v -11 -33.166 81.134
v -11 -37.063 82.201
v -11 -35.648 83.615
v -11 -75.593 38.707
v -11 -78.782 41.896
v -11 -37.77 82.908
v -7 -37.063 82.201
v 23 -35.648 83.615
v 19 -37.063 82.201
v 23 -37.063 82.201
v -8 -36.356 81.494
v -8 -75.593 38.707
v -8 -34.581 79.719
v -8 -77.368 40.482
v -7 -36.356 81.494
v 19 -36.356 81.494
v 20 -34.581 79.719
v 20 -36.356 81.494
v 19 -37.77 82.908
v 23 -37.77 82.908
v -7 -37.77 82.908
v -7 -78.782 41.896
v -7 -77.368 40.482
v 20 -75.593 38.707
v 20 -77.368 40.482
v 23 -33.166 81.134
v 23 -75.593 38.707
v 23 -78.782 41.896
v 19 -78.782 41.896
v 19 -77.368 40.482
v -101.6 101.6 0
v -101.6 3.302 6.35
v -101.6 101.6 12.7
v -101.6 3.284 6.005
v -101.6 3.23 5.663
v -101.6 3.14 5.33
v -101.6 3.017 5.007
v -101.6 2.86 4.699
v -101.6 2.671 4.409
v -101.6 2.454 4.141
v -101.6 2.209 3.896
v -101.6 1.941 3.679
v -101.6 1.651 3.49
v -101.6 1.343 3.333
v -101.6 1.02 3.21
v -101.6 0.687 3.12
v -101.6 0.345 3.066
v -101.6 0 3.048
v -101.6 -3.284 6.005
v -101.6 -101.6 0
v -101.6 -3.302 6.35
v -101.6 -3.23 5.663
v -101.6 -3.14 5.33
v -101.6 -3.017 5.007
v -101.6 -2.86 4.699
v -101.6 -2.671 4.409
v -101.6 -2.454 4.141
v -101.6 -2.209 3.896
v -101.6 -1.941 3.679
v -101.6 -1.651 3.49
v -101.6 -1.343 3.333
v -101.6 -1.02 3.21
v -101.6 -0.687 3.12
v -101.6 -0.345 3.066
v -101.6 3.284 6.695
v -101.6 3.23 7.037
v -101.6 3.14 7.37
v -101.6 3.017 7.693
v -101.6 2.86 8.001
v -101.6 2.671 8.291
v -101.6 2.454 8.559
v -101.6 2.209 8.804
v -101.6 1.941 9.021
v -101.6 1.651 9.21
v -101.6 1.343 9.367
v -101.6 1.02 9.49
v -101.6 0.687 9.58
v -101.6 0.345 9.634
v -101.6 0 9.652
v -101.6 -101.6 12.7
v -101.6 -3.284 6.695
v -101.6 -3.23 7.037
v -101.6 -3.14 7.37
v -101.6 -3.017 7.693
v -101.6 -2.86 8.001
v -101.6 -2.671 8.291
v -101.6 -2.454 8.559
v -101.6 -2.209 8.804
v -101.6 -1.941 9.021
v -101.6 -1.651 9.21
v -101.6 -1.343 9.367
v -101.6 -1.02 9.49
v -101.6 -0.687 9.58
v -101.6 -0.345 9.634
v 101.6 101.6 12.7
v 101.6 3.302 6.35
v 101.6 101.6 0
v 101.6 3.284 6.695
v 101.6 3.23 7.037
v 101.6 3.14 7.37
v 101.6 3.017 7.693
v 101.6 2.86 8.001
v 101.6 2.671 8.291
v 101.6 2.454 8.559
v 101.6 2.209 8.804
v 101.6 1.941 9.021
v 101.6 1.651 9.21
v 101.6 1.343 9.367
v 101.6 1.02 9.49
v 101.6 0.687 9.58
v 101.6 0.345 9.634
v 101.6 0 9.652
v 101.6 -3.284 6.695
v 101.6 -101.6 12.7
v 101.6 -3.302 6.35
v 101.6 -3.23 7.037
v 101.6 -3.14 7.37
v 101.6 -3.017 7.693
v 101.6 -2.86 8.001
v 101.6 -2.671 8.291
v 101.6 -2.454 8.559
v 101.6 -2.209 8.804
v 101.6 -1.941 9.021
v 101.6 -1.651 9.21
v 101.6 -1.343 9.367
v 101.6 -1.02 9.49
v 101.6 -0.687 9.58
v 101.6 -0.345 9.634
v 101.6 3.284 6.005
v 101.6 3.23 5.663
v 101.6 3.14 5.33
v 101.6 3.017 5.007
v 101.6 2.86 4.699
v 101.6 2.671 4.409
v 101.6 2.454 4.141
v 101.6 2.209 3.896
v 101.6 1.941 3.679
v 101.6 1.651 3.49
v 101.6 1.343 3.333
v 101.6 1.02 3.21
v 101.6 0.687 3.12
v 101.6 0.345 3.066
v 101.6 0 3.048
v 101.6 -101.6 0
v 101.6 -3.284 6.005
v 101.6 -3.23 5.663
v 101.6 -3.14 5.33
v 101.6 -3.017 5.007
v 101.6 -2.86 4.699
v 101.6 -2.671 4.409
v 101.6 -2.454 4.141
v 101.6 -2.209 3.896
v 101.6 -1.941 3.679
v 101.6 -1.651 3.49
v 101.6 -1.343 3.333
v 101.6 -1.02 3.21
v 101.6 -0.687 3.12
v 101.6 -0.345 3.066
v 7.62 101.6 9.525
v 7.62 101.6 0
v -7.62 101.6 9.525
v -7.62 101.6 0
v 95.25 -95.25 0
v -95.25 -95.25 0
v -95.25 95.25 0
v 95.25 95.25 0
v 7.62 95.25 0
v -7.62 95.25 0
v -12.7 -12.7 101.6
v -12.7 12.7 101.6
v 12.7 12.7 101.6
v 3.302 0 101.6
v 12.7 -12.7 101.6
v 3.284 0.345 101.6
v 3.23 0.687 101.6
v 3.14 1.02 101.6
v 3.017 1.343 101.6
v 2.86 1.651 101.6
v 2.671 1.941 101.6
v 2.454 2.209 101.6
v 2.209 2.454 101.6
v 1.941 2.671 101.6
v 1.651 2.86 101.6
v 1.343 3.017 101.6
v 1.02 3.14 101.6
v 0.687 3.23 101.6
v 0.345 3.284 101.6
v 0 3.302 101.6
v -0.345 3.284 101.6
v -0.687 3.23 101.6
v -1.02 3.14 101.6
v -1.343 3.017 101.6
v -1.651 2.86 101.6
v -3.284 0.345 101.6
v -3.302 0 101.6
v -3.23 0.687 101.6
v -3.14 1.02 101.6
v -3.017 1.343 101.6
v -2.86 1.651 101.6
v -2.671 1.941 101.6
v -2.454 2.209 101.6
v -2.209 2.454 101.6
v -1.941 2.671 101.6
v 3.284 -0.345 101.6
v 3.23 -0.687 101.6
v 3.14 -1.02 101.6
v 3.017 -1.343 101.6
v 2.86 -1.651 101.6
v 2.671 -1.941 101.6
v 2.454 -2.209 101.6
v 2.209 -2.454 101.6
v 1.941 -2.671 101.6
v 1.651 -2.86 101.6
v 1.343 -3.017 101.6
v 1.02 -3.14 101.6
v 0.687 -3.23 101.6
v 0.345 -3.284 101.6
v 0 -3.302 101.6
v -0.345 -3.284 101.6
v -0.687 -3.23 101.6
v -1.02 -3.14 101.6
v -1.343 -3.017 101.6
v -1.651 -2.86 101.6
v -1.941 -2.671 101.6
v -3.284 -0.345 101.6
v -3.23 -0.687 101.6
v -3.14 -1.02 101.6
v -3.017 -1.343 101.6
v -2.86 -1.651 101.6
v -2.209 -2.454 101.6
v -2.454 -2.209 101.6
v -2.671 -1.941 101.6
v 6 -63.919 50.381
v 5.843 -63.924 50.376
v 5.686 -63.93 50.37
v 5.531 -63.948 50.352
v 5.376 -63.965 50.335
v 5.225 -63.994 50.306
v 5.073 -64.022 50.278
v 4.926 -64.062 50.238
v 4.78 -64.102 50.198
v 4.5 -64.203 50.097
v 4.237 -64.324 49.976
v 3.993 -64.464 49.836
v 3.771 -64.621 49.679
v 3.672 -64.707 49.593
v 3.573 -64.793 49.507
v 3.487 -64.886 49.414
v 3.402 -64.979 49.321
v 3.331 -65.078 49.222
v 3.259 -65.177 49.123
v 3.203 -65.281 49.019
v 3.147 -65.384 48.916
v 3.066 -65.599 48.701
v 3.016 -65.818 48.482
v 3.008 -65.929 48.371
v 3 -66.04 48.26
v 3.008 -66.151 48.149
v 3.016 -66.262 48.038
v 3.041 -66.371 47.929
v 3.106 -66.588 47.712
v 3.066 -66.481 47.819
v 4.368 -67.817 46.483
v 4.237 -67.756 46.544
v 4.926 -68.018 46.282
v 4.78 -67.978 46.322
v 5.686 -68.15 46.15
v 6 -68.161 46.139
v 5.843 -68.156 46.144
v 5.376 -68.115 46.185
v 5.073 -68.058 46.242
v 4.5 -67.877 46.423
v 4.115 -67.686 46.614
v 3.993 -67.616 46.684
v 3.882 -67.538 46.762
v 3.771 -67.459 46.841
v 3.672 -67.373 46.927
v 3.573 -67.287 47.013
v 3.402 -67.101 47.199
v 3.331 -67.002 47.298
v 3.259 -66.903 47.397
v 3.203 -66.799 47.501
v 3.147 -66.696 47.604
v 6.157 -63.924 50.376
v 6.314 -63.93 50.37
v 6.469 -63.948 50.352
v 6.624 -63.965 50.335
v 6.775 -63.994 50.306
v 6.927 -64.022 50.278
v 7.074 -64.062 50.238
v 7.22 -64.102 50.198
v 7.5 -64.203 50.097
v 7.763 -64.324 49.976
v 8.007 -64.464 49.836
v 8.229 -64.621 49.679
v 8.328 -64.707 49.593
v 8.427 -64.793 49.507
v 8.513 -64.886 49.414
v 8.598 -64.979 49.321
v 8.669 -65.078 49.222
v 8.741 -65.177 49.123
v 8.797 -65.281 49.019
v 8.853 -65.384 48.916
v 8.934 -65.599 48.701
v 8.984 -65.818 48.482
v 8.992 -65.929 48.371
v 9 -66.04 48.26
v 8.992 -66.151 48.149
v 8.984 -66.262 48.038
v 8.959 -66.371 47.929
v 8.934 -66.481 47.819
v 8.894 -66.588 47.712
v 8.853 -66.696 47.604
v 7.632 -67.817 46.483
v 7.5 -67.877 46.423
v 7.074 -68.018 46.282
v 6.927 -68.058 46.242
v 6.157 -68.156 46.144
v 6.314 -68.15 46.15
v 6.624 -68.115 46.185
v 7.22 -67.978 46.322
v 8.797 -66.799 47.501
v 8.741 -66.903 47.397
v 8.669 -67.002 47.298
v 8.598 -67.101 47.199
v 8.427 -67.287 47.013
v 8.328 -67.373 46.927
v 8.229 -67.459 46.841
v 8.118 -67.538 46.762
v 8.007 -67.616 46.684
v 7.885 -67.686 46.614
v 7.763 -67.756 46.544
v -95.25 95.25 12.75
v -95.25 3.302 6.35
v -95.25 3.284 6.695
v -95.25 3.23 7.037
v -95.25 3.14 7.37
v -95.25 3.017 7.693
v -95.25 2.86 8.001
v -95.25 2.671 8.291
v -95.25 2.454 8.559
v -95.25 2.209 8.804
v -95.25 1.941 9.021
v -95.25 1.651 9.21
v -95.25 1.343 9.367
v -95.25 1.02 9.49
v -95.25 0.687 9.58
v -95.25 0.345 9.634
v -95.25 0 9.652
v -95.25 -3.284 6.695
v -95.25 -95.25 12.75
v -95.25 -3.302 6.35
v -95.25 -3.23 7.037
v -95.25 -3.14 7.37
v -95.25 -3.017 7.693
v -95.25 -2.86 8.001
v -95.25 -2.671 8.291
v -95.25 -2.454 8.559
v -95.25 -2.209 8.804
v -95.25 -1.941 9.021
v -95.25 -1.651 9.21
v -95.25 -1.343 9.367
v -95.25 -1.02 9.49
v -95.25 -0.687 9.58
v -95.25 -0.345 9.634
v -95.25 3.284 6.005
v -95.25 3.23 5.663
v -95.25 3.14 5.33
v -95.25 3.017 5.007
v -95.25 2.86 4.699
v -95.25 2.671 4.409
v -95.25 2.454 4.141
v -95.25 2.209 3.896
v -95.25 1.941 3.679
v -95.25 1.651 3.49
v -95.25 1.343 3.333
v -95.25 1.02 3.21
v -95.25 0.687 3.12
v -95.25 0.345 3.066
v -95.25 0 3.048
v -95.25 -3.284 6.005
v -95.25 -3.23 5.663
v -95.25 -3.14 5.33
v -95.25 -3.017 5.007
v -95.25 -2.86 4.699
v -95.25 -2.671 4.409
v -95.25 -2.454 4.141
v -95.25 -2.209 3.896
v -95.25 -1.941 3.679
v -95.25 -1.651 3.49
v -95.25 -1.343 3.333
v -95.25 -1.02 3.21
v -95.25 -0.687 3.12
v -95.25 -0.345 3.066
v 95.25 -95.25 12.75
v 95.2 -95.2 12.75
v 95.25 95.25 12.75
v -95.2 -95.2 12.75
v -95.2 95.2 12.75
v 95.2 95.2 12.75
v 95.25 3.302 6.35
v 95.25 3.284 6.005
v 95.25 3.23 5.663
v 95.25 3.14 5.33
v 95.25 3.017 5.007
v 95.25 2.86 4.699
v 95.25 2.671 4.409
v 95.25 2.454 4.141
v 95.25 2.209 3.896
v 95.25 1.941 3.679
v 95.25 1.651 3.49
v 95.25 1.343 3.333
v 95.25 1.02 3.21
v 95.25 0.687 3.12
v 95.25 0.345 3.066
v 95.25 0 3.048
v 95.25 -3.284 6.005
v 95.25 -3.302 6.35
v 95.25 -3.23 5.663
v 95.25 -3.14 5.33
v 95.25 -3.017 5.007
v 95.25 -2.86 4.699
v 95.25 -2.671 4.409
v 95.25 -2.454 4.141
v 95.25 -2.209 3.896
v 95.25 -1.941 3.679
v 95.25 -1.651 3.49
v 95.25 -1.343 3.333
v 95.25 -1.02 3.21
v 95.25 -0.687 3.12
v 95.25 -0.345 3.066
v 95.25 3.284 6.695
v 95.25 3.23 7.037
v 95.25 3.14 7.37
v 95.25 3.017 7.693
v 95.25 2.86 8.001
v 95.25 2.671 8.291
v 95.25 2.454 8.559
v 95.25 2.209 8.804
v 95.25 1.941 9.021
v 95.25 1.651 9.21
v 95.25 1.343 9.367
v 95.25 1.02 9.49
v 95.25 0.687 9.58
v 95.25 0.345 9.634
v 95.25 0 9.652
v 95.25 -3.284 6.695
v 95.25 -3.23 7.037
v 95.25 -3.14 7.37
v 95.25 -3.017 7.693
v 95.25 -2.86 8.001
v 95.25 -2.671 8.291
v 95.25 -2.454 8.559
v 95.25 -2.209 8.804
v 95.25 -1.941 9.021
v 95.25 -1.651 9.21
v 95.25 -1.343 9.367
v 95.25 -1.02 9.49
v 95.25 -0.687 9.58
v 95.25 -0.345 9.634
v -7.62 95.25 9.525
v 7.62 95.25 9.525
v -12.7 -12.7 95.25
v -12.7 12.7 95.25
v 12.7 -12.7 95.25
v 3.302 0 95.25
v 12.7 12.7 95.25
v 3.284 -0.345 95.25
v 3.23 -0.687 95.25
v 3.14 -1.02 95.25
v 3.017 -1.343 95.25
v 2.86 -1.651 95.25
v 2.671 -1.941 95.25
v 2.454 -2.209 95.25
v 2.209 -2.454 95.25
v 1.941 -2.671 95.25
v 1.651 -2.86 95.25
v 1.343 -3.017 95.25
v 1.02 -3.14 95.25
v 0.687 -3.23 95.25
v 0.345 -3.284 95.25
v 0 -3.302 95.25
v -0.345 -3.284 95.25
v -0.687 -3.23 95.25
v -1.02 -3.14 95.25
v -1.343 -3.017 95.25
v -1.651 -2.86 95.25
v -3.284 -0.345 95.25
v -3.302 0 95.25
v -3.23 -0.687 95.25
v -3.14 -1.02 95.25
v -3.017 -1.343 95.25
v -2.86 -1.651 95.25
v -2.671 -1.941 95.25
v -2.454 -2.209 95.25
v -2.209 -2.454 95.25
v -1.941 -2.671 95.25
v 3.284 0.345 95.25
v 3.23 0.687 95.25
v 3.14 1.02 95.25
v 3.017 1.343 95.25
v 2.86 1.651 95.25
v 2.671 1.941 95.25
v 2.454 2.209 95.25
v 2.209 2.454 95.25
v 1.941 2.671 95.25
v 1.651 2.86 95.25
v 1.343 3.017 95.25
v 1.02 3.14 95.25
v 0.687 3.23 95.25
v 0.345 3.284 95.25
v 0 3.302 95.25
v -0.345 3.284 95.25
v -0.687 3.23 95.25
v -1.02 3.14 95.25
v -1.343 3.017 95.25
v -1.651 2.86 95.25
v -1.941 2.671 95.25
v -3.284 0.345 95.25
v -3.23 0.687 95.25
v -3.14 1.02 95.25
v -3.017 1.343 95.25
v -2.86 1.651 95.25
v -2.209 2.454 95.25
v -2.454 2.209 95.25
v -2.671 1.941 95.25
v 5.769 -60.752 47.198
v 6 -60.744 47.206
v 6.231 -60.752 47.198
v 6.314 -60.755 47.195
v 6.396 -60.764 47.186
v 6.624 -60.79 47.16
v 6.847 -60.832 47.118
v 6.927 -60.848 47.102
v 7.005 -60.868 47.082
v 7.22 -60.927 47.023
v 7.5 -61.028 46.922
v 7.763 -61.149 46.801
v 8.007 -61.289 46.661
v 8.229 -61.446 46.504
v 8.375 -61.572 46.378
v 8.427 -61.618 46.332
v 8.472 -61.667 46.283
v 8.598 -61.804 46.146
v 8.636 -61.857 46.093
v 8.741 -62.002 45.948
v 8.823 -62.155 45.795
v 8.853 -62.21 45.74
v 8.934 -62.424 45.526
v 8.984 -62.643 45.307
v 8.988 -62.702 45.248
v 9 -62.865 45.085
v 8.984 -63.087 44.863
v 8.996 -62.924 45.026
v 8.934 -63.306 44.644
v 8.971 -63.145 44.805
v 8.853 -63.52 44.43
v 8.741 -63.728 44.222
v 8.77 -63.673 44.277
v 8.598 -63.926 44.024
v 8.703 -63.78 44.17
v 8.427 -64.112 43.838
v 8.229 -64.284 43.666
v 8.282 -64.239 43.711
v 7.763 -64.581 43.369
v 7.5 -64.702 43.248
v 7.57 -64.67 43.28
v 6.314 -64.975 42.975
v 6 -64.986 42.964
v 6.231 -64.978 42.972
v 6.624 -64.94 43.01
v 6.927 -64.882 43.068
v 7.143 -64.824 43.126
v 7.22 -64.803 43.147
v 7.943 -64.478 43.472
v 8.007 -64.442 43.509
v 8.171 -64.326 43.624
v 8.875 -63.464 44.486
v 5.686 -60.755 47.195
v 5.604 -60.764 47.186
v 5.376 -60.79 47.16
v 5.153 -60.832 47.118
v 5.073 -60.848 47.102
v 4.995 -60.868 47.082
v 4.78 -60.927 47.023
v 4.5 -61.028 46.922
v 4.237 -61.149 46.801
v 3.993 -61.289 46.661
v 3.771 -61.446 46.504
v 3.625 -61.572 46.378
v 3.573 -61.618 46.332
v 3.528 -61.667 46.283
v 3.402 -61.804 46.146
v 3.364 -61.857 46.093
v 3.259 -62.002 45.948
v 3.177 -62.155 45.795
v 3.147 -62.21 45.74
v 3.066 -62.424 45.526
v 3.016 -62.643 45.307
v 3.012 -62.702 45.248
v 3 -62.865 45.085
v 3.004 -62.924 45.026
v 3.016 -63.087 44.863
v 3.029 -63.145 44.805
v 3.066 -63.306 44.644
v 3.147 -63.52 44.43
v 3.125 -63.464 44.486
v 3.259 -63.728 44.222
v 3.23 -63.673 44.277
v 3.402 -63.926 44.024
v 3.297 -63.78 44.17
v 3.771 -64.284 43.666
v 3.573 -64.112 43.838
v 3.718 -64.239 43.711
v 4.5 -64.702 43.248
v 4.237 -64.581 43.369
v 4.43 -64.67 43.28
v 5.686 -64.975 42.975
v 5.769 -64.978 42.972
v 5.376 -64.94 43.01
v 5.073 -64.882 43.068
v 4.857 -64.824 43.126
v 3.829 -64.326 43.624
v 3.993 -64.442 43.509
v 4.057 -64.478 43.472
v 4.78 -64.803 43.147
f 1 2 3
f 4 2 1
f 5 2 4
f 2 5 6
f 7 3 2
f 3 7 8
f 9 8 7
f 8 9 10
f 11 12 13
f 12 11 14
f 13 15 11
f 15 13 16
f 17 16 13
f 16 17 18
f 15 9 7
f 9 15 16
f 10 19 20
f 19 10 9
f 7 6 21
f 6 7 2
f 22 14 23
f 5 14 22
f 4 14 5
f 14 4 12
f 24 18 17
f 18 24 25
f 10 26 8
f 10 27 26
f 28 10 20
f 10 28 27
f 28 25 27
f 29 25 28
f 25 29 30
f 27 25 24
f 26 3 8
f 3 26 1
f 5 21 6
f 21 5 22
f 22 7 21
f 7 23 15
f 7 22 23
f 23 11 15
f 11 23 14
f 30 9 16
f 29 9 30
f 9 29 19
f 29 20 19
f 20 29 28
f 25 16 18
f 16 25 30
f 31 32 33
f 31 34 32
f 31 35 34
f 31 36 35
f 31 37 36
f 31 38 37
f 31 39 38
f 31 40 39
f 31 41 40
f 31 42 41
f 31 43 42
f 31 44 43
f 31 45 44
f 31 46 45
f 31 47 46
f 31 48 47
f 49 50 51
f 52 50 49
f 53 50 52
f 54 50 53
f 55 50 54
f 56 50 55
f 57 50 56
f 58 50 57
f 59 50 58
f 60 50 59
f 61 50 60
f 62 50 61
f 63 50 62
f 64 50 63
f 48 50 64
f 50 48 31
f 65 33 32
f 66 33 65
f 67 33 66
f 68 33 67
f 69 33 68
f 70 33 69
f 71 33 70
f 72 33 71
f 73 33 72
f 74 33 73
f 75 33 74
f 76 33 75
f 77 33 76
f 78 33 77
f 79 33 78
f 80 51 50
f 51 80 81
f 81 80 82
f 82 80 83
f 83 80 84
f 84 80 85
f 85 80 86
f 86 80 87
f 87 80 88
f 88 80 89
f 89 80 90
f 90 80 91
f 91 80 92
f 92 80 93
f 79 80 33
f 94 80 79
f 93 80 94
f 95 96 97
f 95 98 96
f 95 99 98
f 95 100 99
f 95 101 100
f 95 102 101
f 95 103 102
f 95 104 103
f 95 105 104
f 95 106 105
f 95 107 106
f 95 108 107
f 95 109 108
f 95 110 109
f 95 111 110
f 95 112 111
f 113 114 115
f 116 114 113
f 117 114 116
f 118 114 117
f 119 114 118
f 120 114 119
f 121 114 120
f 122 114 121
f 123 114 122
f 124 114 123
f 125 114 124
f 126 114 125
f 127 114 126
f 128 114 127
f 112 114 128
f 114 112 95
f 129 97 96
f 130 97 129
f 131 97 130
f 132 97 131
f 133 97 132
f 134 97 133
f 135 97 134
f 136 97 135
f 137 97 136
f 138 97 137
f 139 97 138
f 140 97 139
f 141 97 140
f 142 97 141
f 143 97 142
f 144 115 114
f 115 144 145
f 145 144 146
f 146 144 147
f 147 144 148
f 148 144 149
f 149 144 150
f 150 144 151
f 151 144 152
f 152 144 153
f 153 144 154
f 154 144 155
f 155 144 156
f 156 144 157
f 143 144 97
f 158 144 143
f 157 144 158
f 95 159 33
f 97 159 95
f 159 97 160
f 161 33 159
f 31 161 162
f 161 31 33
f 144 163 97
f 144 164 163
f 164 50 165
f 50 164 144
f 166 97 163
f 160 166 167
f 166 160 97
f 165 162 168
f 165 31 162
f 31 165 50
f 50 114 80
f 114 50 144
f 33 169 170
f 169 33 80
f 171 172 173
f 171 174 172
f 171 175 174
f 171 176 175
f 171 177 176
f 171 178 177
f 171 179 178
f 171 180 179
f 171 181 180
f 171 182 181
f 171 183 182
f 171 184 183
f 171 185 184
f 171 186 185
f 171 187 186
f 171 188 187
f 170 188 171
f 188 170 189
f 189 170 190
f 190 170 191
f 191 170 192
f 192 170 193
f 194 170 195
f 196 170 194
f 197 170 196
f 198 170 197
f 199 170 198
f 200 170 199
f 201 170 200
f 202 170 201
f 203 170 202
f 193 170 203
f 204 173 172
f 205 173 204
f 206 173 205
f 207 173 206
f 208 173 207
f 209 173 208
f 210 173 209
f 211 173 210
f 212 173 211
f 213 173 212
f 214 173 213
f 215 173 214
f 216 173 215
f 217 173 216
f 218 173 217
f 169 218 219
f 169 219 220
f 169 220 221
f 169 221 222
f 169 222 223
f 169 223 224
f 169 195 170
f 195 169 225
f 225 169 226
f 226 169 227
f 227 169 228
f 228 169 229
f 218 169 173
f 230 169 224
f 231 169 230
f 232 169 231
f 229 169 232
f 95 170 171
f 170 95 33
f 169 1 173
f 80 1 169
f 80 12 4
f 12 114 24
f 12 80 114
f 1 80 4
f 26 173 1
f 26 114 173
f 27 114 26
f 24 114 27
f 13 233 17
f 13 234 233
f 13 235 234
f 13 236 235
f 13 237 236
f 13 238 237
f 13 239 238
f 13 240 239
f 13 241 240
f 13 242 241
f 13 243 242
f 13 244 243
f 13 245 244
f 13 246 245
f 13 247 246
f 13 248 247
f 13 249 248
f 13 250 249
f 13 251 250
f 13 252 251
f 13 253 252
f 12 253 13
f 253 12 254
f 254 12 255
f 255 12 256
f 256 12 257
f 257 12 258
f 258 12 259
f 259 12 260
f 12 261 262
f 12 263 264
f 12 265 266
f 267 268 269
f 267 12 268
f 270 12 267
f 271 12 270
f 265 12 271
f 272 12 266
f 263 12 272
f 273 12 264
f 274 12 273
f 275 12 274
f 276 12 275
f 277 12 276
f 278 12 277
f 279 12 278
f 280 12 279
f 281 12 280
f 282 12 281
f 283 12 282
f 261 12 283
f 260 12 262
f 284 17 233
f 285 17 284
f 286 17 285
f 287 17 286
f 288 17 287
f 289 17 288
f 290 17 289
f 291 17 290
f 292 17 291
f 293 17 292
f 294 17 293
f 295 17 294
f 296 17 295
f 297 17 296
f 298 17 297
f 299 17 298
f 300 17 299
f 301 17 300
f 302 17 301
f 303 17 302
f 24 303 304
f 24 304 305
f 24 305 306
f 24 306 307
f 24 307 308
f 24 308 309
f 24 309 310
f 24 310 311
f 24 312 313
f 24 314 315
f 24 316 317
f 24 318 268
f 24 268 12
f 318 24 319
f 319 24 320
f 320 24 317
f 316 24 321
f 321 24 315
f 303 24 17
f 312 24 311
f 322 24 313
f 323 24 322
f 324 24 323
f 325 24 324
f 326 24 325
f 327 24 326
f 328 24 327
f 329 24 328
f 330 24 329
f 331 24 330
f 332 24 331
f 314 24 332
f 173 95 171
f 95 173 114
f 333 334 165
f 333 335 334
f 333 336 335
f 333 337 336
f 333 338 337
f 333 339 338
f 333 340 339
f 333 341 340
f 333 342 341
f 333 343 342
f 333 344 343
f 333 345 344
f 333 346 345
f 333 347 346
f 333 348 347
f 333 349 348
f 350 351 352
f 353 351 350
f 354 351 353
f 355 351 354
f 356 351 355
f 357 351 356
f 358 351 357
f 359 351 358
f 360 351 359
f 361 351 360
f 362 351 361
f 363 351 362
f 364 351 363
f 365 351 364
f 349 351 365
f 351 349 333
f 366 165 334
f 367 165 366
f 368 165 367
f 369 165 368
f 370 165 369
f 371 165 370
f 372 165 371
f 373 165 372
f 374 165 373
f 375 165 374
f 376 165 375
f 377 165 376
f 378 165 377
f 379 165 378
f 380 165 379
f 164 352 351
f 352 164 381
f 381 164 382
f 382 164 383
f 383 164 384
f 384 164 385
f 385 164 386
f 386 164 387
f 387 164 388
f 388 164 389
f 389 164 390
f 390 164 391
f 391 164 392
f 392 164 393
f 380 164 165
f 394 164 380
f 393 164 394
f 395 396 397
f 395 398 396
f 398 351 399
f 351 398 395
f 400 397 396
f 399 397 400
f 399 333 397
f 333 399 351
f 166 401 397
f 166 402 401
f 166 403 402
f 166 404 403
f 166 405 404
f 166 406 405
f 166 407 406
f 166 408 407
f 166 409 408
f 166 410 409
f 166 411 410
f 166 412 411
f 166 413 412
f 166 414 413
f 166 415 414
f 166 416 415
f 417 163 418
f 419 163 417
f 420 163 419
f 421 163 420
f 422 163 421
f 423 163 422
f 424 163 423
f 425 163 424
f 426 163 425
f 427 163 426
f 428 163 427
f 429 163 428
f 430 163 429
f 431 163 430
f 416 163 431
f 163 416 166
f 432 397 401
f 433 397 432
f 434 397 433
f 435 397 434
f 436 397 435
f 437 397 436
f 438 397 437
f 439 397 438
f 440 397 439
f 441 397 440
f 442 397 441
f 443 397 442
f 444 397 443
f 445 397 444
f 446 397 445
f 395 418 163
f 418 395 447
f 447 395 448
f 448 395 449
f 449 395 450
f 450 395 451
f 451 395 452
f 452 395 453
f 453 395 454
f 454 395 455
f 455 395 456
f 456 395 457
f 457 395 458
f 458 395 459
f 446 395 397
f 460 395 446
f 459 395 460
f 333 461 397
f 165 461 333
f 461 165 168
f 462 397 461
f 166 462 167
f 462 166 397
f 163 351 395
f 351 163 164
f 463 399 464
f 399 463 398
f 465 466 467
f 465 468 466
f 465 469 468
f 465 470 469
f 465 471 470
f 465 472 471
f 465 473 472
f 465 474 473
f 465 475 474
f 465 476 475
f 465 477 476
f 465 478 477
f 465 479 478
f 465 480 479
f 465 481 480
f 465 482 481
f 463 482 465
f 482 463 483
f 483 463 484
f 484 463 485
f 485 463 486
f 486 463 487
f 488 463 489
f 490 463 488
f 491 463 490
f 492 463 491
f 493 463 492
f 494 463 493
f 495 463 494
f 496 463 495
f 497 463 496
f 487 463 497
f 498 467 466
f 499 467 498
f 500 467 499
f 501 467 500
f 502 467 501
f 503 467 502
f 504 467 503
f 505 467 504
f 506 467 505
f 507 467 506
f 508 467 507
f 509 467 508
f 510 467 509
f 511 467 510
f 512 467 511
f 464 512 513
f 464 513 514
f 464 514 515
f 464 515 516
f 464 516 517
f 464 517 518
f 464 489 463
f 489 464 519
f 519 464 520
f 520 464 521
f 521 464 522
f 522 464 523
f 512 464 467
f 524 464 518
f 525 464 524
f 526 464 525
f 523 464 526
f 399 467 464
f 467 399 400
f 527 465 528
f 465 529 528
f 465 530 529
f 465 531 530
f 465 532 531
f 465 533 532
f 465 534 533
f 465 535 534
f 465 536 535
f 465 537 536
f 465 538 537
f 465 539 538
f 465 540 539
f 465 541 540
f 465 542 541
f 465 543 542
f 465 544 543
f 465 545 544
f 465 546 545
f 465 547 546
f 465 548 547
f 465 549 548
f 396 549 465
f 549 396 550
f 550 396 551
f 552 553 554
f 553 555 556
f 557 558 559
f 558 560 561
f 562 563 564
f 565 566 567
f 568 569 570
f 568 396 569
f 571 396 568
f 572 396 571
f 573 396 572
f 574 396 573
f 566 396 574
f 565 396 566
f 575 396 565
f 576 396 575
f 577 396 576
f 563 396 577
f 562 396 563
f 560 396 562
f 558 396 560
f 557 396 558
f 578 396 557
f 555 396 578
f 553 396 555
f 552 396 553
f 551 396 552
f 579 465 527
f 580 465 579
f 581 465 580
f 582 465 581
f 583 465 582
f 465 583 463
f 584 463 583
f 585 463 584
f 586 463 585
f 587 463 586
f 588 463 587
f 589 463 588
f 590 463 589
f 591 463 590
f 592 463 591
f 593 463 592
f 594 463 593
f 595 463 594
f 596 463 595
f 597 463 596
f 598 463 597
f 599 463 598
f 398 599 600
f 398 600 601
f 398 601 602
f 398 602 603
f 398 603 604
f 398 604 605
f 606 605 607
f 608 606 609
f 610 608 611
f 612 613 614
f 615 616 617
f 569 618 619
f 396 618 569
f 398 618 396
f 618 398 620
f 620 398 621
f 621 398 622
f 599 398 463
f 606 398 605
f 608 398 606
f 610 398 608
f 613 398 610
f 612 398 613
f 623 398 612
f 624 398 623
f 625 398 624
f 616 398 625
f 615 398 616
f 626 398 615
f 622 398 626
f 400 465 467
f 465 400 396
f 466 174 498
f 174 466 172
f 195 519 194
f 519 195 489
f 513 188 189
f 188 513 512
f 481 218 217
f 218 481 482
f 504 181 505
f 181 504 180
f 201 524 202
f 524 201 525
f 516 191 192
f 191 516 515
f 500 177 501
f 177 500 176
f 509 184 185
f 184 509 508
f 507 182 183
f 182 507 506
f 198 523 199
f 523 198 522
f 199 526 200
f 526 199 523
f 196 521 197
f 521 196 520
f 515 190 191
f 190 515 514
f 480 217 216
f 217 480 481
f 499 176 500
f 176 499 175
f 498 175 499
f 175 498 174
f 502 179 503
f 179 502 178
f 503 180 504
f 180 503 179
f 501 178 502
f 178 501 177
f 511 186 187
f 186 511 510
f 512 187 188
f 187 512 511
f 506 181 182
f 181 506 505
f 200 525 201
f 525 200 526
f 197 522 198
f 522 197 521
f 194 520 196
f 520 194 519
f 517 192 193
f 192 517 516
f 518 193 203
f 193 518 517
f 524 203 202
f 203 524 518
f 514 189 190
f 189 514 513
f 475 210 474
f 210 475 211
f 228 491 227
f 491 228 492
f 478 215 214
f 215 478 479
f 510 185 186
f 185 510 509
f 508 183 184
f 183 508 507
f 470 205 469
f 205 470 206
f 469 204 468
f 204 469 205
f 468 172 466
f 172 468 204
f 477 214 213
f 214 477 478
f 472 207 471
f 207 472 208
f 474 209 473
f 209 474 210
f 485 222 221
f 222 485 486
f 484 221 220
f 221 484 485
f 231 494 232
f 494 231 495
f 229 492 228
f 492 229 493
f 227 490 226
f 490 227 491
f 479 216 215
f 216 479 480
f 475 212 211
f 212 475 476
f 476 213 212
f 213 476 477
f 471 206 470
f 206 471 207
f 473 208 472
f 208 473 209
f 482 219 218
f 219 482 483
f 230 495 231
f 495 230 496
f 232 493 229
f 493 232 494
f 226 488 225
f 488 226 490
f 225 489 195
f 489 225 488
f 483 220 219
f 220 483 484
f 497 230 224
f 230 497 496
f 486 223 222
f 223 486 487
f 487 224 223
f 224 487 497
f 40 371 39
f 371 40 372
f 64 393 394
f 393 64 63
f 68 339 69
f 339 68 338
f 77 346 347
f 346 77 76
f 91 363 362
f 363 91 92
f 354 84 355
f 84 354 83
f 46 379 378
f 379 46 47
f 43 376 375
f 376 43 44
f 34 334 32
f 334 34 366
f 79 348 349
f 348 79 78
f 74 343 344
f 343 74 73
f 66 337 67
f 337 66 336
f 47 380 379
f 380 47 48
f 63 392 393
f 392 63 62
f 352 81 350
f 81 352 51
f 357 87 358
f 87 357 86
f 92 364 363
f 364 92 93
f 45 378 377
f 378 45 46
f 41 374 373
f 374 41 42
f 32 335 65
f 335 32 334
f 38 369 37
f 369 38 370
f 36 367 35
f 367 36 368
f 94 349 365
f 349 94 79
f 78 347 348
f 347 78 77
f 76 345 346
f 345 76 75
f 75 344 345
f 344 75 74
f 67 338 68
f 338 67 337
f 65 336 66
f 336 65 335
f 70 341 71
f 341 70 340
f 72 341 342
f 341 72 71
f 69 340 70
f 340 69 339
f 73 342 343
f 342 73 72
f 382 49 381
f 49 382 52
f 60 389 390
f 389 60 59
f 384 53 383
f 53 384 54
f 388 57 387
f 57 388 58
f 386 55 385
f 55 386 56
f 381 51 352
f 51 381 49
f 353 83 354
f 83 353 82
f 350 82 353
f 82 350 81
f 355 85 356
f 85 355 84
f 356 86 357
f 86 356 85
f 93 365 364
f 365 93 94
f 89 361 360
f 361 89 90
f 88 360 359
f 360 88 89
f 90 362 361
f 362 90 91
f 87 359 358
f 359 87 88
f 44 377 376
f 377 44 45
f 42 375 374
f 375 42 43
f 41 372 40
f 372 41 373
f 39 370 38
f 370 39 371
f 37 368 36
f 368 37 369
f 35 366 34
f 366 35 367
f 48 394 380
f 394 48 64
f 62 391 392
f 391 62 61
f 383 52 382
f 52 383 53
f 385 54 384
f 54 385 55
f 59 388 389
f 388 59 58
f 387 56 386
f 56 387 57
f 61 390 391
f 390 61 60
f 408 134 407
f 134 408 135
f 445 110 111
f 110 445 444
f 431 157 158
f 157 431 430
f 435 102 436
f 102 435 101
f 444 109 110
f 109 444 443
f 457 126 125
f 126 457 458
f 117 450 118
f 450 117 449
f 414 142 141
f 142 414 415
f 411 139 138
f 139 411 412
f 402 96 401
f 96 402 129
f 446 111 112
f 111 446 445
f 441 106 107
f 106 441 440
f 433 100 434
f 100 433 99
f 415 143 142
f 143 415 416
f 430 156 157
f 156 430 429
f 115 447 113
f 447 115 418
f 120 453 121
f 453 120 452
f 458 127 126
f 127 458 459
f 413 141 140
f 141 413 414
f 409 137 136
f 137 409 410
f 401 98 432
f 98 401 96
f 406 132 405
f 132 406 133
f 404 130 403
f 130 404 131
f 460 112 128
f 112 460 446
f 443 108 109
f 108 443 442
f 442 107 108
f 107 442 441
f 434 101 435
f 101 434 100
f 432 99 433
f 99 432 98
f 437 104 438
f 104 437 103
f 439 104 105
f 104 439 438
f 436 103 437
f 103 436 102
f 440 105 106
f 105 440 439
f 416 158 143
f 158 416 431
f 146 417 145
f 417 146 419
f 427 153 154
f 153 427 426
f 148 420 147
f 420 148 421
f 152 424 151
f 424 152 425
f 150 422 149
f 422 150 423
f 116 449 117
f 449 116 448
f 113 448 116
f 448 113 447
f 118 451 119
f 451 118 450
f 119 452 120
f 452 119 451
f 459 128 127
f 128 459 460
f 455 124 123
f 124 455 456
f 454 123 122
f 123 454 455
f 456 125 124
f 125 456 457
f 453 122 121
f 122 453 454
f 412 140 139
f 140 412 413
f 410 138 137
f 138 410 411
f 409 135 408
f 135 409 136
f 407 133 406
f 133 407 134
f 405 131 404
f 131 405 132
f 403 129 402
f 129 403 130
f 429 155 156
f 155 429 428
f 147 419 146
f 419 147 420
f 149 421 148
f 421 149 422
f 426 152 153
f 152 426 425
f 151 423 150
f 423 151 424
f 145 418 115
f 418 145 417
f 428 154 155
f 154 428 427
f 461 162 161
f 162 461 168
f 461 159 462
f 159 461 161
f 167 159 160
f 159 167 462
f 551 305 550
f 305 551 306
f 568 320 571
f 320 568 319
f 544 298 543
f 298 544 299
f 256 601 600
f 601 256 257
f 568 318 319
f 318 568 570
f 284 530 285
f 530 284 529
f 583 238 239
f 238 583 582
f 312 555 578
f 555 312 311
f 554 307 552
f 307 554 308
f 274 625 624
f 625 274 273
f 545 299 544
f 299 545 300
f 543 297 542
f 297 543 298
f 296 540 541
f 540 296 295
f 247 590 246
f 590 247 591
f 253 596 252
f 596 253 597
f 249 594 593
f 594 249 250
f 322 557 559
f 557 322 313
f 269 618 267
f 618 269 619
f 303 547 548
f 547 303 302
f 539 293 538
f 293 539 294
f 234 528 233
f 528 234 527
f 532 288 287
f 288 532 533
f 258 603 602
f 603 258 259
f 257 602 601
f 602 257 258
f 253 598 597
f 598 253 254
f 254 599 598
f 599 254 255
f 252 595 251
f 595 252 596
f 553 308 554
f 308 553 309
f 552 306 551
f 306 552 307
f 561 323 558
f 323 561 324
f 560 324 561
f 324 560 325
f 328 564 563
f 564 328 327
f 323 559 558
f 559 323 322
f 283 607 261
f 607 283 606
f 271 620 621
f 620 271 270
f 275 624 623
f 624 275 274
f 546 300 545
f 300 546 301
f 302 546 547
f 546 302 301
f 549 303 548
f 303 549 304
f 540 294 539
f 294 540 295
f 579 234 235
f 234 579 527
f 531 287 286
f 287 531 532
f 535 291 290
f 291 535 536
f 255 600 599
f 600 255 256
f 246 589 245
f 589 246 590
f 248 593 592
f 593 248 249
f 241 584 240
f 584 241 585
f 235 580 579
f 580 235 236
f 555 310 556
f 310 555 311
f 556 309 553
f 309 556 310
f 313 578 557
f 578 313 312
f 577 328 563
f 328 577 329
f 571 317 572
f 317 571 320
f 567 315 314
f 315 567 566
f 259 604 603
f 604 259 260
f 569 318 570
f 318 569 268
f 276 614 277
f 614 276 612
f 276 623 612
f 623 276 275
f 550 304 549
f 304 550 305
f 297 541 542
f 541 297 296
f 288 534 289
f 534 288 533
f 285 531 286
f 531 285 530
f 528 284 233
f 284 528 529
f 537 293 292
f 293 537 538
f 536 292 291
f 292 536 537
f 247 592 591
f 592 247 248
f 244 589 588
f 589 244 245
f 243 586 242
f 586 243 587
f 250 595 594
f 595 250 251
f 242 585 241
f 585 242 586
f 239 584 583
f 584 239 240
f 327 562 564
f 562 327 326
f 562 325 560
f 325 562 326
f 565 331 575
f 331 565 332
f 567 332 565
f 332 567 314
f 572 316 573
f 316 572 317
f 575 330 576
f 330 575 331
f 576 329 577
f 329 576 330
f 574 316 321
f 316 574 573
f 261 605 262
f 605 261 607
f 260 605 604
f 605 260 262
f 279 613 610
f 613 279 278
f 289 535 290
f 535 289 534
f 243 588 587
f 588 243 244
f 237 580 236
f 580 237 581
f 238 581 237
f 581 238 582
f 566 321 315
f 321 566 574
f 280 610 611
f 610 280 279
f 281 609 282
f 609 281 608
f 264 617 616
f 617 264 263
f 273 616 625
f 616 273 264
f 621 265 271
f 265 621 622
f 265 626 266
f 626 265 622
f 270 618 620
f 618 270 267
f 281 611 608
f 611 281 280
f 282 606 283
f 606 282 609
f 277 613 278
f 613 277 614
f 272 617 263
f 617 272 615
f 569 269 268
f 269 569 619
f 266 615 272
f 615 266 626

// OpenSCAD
// All-Seeing Eye Enclosure Design
// Unit: mm (Converted from freedom units)

/* [Global Dimensions] */
INCH = 25.4;

// Base Specifications
base_width = 8.0 * INCH;
base_height = 0.5 * INCH;
wall_thickness = 0.25 * INCH;

// Pyramid Specifications
slope_angle = 45; 

// Top flat area for SMA connector
top_width = 1.0 * INCH; 

// Calculate pyramid height
pyramid_height = (base_width - top_width) / 2;

/* [Interface Dimensions] */
sma_hole_diameter = 0.26 * INCH;
usb_cutout_width = 0.6 * INCH;
usb_cutout_height = 0.3 * INCH;
usb_cable_clearance = 0.5 * INCH;

// ESP32-S3 Board Dimensions
pcb_width = 28.0; 
pcb_length = 58.0; 
pcb_thickness = 1.6; 
pin_row_clearance = 2.54; // Standard pin header height ~2.54mm or more, keep clear

// LED Position (offset from center of board)
// Board center X is 14mm. LED center X is 8mm.
// Offset = 8 - 14 = -6mm (Left).
led_offset_x = -6.0; 
led_center_y_from_bottom = 18.0; 
led_size = 6.0;

/* [Rendering resolution] */
$fn = 60;

module main() {
    difference() {
        // 1. Positive Volume (The Shell + Mounts)
        union() {
            // A. Base Prism
            translate([0, 0, base_height/2])
                cube([base_width, base_width, base_height], center=true);
            
            // B. Pyramid Frustum
            translate([0, 0, base_height])
                pyramid_frustum(base_width, top_width, pyramid_height);
            
            // C. Internal Mounts (Positive Geometry)
            // CALCULATE POSITION:
            // 1. Z-Height of Eye Center
            eye_z_center = base_height + pyramid_height * 0.4;
            
            // 2. Y-Pos on the Inner Wall Surface.
            // Pyramid Inner Wall equation for -Y face: Y = -(base_width/2 - wall_thickness) + (Z - base_height)
            // Wait, wall thickness is subtracted from all sides.
            // So inner base edge starts at Y = -(base_width/2 - wall_thickness).
            // Let's verify slope direction. Z goes up, Y goes towards 0 (inwards).
            // So Y = -(Inner_Base_Radius) + (Z_Height_Above_Base)
            inner_base_radius = (base_width/2) - wall_thickness;
            eye_y_inner = -inner_base_radius + (eye_z_center - base_height);

            translate([0, eye_y_inner, eye_z_center])
                rotate([45, 0, 0]) // Match face slope
                // No need to rotate 180 here, let's build the module "Face Down" natively.
                // Origin of module = LED Center on the Face surface.
                esp32_mount_assembly();
        }

        // 2. Negative Volume (The Hollow)
        union() {
            // A. Hollow Base
            translate([0, 0, base_height/2])
                cube([base_width - 2*wall_thickness, base_width - 2*wall_thickness, base_height + 0.1], center=true);
            
            // B. Hollow Pyramid
            inner_height = pyramid_height - wall_thickness;
            inner_base_width = base_width - 2*wall_thickness;
            inner_top_width = top_width;

            translate([0, 0, base_height])
                 pyramid_frustum(inner_base_width, inner_top_width, inner_height);
        }

        // 3. Cutouts / Holes
        
        // A. Top SMA Connector (Apex)
        translate([0, 0, base_height + pyramid_height - wall_thickness - 1]) 
            cylinder(h = wall_thickness + 2, d = sma_hole_diameter, center = false);

        // B. Left Face SMA (WiFi)
        translate([-base_width/2 + wall_thickness/2, 0, base_height/2])
            rotate([0, 90, 0])
            cylinder(h = wall_thickness + 2, d = sma_hole_diameter, center = true);

        // C. Right Face SMA (Meshtastic)
        translate([base_width/2 - wall_thickness/2, 0, base_height/2])
            rotate([0, 90, 0])
            cylinder(h = wall_thickness + 2, d = sma_hole_diameter, center = true);

        // D. Rear Face USB
        translate([0, base_width/2 - wall_thickness/2, 0])
            cube([usb_cutout_width, wall_thickness + 2, base_height*1.5], center = true);
            
        // E. Front Face Eye Hole
        // Recalculate position same as above
        eye_z = base_height + pyramid_height * 0.4;
        eye_y = -base_width/2 + (eye_z - base_height);
        
        translate([0, eye_y, eye_z])
            rotate([45, 0, 0]) 
            // We want the hole to be where the LED is.
            // Our mount is centered on X=0.
            // The Board is centered in the mount.
            // The LED is offset by led_offset_x on the board.
            // BUT wait, we flipped the board upside down (rotate 180 Y or X).
            // If we flip X, Left becomes Right.
            // If we flip Y (as done above with Z local), Right is still Right (looking from top).
            // Let's assume standard view:
            // Hole needs to be exactly where the mount puts the LED.
            translate([-led_offset_x, 0, 0]) // Shift hole to match LED offset
                cylinder(h = wall_thickness * 3, d = led_size, center = true);
    }
}

// Module for the specific ESP32 holder geometry
module esp32_mount_assembly() {
    // This module is positioned at the "Eye Center" on the INNER face surface.
    // Orientation: Local Z points INWARDS (towards center of pyramid).
    // Local X/Y plane is parallel to the 45-degree wall.
    // Origin (0,0) is the LED Center.
    
    // Board Orientation: "Face Down" means PCB Top (LED side) touches the wall (Z=0).
    // The board itself extends into +Z space.
    
    // We need Rails to hold the EDGES of the PCB.
    // PCB Width: 28mm.
    // Rails should be at X = +/- 14mm.
    
    // We need to shift the geometry relative to the LED Center Origin.
    // LED is at X = led_offset_x = -6mm (relative to PCB Center).
    // So PCB Center is at X = -led_offset_x = +6mm relative to LED/Origin.
    
    // LED is at Y = led_center_y_from_bottom = 18mm (relative to PCB Bottom).
    // So PCB Bottom is at Y = -18mm relative to LED/Origin.
    
    pcb_center_x_local = -led_offset_x; // +6mm
    pcb_bottom_y_local = -led_center_y_from_bottom; // -18mm
    
    rail_height = 8.0; // How far off the wall they stick out
    rail_width = 3.0;
    
    translate([pcb_center_x_local, pcb_bottom_y_local, 0]) {
        // Now we are at the Bottom-Center of the PCB footprint (virtually).
        
        // 1. Left Rail (at X = -14)
        translate([-pcb_width/2 - rail_width/2, pcb_length/2, rail_height/2])
            cube([rail_width, pcb_length, rail_height], center=true);

        // 2. Right Rail (at X = +14)
        translate([pcb_width/2 + rail_width/2, pcb_length/2, rail_height/2])
            cube([rail_width, pcb_length, rail_height], center=true);
            
        // 3. Top Stop (Antenna End)
        // Keeps board from sliding "Up" (Interference fit or stop)
        translate([0, pcb_length + 1, rail_height/2])
            cube([pcb_width + 2*rail_width, 2, rail_height], center=true);
            
        // 4. "Hook" / Pin-Clearance Shelf
        // You mentioned: "hook can rest between the pins... holding the board... two raised rails rest on outside"
        // If we are Face Down, the rails are holding the SIDES.
        // Something needs to press the BACK of the board (the non-LED side) towards the wall?
        // Or if the rails are "L" shaped to trap it?
        // Let's make "L" shaped rails.
        
        // Left Overhang
        translate([-pcb_width/2 - 1, pcb_length/2, rail_height]) // Top of rail
            cube([4, pcb_length, 2], center=true); // 2mm overhang tab
            
        // Right Overhang
        translate([pcb_width/2 + 1, pcb_length/2, rail_height]) 
            cube([4, pcb_length, 2], center=true); 
    }
}


// Module to create a centered 4-sided pyramid frustum
module pyramid_frustum(base_w, top_w, h) {
    r_base = (base_w / 2) * sqrt(2);
    r_top = (top_w / 2) * sqrt(2);
    
    rotate([0, 0, 45])
        cylinder(h=h, r1=r_base, r2=r_top, $fn=4);
}

main();
